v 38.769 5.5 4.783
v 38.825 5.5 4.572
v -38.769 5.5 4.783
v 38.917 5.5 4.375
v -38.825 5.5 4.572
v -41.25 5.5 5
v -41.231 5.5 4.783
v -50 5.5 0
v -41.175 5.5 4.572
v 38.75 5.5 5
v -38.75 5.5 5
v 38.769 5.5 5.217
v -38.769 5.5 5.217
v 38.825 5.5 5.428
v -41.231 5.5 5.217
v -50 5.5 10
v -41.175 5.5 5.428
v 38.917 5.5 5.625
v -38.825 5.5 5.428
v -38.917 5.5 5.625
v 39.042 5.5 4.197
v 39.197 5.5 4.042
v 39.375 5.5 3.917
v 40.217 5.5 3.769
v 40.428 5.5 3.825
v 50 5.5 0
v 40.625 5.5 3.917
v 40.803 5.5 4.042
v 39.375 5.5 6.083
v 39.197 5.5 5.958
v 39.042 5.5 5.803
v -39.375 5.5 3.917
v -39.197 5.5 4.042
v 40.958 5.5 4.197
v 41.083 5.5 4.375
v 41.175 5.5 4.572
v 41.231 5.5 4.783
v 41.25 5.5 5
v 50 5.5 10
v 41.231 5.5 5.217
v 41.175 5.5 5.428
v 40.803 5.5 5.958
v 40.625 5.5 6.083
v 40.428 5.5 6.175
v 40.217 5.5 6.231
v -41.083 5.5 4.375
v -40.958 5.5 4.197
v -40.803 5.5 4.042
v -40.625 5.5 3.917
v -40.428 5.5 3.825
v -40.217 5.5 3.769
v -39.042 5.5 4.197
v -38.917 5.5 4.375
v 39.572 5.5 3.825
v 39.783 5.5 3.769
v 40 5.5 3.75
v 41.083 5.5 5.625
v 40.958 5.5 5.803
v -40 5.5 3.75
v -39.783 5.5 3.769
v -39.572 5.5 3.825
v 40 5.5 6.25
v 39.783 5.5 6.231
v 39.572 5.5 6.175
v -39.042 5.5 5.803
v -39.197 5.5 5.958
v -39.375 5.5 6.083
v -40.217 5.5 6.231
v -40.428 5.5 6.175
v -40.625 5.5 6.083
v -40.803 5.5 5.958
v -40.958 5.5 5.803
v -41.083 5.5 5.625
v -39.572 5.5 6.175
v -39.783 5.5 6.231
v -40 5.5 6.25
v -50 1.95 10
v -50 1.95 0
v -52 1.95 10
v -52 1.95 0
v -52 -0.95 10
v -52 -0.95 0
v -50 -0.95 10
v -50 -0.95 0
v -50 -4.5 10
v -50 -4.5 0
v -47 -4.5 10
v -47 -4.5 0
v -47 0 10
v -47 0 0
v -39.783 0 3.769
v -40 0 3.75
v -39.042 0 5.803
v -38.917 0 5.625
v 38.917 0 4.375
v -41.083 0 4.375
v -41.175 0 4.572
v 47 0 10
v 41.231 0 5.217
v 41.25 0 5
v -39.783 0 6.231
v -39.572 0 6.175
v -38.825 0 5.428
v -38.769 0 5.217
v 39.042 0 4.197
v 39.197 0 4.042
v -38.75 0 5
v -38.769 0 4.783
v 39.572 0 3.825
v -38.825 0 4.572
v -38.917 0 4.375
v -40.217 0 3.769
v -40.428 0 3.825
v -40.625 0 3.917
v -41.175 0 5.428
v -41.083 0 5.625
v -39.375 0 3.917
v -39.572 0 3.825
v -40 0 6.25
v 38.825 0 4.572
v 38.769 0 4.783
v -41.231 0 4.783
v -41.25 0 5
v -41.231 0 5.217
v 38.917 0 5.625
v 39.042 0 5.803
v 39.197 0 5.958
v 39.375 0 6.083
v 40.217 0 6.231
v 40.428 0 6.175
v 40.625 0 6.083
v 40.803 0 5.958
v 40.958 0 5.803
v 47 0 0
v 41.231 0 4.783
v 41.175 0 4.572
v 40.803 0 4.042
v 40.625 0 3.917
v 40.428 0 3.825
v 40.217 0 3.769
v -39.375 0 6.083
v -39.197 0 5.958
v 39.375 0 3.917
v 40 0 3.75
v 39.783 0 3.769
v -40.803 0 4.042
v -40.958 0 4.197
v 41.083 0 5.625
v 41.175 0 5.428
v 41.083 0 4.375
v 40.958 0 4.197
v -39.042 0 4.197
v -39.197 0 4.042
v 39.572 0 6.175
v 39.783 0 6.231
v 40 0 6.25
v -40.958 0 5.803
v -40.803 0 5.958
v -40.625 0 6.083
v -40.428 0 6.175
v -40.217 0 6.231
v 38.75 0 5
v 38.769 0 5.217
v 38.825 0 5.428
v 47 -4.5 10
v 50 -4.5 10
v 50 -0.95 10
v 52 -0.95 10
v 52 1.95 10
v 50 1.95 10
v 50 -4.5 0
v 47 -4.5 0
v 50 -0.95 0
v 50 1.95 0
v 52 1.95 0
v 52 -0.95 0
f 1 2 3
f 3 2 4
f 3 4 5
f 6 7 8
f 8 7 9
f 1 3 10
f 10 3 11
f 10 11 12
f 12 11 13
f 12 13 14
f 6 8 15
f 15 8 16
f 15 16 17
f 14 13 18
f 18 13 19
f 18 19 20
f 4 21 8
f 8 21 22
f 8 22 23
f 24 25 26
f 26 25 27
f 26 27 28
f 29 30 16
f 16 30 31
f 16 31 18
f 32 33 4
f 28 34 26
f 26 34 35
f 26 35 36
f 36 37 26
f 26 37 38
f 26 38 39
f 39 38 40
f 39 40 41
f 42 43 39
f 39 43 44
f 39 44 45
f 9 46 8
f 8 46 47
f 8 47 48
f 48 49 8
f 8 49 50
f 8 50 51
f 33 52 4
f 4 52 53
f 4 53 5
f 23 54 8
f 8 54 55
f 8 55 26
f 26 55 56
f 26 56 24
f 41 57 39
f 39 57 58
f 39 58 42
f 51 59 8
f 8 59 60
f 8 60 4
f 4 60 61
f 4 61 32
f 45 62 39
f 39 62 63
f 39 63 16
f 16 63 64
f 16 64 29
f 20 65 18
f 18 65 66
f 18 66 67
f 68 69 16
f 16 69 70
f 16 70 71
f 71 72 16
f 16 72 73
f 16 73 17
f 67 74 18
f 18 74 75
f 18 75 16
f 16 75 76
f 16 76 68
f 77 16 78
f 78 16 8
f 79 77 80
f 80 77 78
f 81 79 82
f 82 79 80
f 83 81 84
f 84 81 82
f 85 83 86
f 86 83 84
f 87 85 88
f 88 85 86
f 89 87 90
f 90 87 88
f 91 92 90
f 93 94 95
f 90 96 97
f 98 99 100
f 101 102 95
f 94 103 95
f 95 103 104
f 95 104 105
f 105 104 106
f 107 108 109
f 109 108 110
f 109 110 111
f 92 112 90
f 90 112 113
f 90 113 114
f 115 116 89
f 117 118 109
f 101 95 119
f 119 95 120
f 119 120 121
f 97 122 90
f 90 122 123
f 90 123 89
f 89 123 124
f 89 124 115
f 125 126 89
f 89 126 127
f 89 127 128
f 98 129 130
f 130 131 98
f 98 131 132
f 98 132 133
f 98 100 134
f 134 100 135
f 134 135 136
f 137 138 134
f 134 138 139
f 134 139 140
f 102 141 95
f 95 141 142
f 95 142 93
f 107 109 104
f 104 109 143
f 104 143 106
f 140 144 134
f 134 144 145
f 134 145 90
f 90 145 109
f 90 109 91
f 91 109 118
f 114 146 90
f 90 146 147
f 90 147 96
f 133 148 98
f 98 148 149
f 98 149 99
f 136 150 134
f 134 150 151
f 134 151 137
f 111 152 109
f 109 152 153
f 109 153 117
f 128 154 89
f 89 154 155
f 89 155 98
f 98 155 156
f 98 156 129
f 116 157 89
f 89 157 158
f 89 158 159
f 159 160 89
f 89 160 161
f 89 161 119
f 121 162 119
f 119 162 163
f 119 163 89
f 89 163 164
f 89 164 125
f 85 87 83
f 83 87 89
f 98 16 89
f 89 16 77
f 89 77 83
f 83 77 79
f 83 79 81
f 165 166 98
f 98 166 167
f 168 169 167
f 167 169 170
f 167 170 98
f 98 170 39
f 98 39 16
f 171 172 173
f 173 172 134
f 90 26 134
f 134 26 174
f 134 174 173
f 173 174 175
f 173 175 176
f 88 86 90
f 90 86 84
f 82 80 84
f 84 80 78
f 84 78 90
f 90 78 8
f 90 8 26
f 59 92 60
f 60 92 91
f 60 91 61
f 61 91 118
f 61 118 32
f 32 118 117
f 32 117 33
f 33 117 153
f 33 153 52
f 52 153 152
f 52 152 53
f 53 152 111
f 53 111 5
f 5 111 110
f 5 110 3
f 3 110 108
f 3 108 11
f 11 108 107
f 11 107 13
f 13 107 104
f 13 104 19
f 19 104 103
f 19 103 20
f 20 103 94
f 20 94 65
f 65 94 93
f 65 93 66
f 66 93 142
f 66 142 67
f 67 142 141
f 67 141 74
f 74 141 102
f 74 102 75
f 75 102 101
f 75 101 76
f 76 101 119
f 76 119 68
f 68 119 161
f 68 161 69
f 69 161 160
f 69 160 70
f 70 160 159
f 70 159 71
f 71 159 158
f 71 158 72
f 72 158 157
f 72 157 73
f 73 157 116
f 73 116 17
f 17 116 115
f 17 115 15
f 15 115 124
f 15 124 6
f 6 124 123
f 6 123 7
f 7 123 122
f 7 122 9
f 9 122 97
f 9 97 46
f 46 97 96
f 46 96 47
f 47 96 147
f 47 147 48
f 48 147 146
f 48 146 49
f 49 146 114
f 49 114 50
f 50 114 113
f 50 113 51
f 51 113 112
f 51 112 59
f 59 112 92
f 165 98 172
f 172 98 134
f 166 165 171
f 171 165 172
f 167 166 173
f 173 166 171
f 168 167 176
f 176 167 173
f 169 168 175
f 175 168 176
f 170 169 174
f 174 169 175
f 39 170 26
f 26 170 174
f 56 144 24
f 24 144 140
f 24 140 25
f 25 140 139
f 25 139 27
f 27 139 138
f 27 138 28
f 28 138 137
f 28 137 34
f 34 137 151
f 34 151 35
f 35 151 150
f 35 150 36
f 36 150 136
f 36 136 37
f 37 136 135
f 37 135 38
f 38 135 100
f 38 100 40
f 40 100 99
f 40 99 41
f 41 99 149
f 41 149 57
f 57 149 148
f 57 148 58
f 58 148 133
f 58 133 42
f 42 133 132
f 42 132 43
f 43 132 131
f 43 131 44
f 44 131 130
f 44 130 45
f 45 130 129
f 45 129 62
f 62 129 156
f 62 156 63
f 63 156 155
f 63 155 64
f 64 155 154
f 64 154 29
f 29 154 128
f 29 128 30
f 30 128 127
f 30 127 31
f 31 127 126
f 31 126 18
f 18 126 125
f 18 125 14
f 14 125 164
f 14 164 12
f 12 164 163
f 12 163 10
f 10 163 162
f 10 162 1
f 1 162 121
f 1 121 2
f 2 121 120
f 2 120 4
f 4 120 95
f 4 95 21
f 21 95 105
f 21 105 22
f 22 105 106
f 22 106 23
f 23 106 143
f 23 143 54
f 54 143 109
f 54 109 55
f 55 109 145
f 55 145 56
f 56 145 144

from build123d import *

# Parameters (mm, degrees)
MAINLEFT_DEPTH     = 10
SKETCH3_R          = 1.25
CUT_EXTRUDE2_DEPTH = 6.5


with BuildPart() as part:
    # Sketch1 → MainLeft (new body)
    with BuildSketch(Plane.XY):
        Polygon((-50, 5.5), (-50, 1.95), (-52, 1.95), (-52, -0.95), (-50, -0.95), (-50, -4.5), (-47, -4.5), (-47, 0), (0, 0), (0, 5.5), align=None)
    mainleft = extrude(amount=MAINLEFT_DEPTH)

    # Sketch3 → Cut-Extrude2 (cut, through all)
    with BuildSketch(Plane.XZ):
        with Locations((-40, 5)):
            Circle(SKETCH3_R)
    cut_extrude2 = extrude(amount=-CUT_EXTRUDE2_DEPTH, mode=Mode.SUBTRACT)

    # Mirror1: MainLeft, Cut-Extrude2 across plane
    add(mainleft.mirror(Plane(origin=(0, 0, 0), x_dir=(0, 0, 1), z_dir=(1, 0, 0))))
    add(cut_extrude2.mirror(Plane(origin=(0, 0, 0), x_dir=(0, 0, 1), z_dir=(1, 0, 0))), mode=Mode.SUBTRACT)


solid = part.part
